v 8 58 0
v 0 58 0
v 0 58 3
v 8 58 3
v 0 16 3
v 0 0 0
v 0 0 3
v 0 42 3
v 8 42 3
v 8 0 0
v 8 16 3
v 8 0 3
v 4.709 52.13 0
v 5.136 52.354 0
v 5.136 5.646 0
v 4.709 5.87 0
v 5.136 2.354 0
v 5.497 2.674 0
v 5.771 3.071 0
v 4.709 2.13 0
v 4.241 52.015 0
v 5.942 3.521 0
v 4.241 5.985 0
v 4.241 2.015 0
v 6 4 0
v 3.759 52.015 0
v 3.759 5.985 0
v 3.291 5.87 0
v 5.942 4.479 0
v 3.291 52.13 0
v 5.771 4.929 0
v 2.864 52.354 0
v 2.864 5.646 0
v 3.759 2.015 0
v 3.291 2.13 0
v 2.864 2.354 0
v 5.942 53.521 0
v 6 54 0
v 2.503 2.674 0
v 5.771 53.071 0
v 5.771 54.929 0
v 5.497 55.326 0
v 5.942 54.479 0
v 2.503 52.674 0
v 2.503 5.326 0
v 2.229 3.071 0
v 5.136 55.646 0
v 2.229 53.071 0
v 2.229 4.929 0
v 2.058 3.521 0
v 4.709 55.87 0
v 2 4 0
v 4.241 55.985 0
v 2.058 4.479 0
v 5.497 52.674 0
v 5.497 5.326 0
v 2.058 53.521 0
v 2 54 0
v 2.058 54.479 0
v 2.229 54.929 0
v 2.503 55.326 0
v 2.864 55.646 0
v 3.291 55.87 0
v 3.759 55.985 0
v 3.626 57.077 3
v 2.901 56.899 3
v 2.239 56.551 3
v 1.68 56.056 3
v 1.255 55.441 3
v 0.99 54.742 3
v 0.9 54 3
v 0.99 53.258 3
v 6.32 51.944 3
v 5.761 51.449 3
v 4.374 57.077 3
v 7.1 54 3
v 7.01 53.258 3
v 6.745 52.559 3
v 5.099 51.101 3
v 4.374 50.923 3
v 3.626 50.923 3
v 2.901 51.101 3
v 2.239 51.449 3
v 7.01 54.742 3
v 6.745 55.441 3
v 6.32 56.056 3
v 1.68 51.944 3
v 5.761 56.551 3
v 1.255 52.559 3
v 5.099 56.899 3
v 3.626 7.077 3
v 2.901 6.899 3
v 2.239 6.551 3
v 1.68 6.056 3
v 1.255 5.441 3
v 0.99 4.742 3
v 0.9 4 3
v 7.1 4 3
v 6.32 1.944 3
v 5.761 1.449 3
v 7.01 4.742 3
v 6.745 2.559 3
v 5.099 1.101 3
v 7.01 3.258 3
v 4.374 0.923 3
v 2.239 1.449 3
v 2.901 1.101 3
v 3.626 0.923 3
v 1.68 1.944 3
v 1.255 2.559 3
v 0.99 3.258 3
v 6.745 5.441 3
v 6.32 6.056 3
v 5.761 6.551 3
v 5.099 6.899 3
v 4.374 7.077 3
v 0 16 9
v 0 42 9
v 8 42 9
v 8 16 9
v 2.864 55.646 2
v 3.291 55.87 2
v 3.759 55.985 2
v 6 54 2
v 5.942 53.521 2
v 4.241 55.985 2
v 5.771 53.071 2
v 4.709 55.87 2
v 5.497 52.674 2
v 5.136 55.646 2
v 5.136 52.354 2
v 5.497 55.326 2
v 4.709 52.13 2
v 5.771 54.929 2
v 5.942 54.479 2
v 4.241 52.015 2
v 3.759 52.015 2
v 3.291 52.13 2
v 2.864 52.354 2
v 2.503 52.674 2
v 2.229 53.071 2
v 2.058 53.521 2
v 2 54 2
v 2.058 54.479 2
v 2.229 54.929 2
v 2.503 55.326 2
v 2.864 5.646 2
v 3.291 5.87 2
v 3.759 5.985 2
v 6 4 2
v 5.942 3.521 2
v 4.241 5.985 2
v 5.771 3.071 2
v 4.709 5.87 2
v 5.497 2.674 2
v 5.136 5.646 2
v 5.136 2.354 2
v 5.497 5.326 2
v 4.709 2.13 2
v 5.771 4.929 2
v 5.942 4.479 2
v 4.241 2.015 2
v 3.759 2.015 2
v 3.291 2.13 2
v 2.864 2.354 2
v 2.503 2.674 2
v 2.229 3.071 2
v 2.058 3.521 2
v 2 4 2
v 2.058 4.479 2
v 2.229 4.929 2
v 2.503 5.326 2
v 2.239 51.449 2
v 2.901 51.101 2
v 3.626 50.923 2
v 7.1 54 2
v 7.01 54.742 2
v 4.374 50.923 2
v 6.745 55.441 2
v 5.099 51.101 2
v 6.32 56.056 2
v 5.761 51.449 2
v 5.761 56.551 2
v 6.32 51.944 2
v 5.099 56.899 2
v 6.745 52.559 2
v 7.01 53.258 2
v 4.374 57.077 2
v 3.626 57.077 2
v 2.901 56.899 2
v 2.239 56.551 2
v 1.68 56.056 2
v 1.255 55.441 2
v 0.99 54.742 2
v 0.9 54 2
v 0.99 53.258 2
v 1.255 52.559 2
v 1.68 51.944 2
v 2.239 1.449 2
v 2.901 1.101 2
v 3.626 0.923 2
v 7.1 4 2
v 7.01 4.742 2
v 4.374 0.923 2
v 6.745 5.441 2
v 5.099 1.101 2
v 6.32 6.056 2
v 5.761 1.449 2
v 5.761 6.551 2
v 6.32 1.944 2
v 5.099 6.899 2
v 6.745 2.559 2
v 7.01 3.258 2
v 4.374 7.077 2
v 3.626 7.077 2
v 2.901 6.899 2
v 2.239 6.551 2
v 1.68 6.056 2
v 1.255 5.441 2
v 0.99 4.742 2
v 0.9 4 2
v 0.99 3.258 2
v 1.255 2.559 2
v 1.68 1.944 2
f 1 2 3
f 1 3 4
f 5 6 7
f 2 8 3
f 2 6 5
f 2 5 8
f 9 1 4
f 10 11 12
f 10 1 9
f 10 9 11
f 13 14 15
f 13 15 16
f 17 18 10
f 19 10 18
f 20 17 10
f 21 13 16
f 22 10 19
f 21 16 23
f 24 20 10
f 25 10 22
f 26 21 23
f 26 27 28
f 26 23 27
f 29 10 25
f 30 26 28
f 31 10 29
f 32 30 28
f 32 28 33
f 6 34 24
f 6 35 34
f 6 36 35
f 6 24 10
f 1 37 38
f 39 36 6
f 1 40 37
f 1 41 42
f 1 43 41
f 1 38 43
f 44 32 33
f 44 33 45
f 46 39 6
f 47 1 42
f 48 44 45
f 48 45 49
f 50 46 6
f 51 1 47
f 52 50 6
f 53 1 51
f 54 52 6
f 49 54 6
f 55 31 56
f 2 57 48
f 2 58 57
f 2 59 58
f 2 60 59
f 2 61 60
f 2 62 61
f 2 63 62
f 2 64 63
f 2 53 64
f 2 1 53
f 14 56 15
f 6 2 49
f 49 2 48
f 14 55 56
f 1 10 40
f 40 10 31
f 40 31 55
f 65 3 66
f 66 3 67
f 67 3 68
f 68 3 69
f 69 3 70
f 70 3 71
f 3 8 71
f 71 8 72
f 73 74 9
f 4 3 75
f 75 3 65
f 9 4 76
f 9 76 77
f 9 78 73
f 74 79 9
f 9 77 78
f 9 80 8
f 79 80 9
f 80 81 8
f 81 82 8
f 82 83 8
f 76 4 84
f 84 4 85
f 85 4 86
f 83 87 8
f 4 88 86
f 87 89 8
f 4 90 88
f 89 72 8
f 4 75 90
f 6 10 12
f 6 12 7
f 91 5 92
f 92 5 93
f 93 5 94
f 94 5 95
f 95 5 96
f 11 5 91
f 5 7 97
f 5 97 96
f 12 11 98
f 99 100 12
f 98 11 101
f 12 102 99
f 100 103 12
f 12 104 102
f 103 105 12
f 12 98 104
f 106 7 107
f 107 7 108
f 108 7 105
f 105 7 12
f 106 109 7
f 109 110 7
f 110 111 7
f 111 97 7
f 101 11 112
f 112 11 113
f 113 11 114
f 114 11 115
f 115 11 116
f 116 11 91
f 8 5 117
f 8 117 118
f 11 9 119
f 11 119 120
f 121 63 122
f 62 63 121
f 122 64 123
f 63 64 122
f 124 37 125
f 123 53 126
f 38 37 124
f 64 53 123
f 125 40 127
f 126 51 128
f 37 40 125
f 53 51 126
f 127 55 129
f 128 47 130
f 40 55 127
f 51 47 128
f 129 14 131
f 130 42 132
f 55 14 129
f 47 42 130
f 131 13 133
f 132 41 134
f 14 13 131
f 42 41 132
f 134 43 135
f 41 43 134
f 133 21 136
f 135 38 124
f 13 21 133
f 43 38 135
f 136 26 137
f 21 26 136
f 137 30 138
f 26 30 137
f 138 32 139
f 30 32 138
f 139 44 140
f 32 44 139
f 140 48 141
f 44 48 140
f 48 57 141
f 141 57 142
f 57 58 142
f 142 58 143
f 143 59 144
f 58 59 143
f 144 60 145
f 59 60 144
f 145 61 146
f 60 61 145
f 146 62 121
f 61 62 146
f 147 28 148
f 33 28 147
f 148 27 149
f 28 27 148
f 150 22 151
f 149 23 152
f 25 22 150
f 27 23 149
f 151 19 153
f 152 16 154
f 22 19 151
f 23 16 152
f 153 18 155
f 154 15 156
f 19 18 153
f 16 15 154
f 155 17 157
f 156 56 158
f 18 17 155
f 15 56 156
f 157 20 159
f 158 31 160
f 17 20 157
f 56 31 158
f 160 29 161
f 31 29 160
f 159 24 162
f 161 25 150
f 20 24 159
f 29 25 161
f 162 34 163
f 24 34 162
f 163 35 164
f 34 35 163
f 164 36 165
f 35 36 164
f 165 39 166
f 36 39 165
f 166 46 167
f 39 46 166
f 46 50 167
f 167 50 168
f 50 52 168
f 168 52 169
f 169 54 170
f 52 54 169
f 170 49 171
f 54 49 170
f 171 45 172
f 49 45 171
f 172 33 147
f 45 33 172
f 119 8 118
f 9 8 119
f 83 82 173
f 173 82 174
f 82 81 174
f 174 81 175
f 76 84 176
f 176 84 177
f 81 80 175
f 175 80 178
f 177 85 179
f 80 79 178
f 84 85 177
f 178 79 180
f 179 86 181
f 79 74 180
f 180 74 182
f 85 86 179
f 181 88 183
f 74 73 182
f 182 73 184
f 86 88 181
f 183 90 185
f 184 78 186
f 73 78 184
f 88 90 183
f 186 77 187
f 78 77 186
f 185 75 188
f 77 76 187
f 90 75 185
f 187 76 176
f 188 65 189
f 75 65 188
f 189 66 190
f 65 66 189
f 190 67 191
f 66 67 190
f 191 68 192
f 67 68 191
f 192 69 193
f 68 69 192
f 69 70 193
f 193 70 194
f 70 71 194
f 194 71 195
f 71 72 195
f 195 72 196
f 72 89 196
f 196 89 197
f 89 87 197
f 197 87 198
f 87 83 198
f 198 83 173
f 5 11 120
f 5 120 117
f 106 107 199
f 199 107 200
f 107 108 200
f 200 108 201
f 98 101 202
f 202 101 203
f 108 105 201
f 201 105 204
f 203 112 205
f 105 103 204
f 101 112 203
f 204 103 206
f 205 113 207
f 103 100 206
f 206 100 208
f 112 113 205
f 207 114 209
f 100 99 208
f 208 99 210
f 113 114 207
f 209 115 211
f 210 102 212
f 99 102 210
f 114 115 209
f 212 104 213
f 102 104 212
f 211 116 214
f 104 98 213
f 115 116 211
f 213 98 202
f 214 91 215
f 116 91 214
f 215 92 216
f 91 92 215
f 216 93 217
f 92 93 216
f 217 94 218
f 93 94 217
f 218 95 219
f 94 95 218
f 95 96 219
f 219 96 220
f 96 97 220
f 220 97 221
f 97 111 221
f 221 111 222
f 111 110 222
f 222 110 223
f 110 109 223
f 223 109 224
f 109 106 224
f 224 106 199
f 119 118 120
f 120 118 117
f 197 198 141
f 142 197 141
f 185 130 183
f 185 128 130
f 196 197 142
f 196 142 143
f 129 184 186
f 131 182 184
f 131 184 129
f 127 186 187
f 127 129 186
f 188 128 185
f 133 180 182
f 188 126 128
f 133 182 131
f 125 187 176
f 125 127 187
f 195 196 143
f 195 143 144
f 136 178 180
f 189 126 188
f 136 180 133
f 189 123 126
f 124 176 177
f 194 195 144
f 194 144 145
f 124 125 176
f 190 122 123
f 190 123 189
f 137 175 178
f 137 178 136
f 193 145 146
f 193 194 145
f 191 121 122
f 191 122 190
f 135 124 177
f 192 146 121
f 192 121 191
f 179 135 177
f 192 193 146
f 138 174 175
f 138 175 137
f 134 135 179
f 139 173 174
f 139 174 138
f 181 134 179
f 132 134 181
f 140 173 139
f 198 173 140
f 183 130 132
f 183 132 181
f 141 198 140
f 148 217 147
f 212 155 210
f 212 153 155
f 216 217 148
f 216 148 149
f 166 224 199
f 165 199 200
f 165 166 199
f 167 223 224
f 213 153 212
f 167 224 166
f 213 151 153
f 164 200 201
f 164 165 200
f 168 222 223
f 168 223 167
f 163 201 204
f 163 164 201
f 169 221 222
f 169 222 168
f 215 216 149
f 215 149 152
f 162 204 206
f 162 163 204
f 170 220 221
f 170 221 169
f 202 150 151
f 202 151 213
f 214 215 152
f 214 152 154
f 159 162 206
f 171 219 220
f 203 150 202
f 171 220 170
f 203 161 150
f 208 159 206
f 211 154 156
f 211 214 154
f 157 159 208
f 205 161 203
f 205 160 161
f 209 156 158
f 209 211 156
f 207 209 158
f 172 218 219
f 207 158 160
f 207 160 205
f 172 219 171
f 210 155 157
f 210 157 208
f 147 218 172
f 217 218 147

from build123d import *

# Parameters (mm, degrees)
SKETCH_W        = 8
SKETCH_H        = 58
PAD_DEPTH       = 3
SKETCH001_W     = 8
SKETCH001_H     = 26
PAD001_DEPTH    = 6
SKETCH002_R     = 2
POCKET_DEPTH    = 5
SKETCH003_R     = 3.1
POCKET001_DEPTH = 1


with BuildPart() as part:
    # Sketch → Pad (new body)
    with BuildSketch(Plane.XY):
        with Locations((4, 29)):
            Rectangle(SKETCH_W, SKETCH_H)
    extrude(amount=PAD_DEPTH)

    # Sketch001 (on Face6 of Pad) → Pad001 (join)
    with BuildSketch(Plane.XY.offset(3)):
        with Locations((4, 29)):
            Rectangle(SKETCH001_W, SKETCH001_H)
    extrude(amount=PAD001_DEPTH)

    # Sketch002 (on Face4 of Pad001) → Pocket (cut)
    with BuildSketch(Plane(origin=(0, 0, 0), x_dir=(1, 0, 0), z_dir=(0, 0, -1))):
        with Locations((4, -4)):
            Circle(SKETCH002_R)
        with Locations((4, -54)):
            Circle(SKETCH002_R)
    extrude(amount=-POCKET_DEPTH, mode=Mode.SUBTRACT)

    # Sketch003 (on Face5 of Pocket) → Pocket001 (cut)
    with BuildSketch(Plane.XY.offset(3)):
        with Locations((4, 4)):
            Circle(SKETCH003_R)
        with Locations((4, 54)):
            Circle(SKETCH003_R)
    extrude(amount=-POCKET001_DEPTH, mode=Mode.SUBTRACT)


solid = part.part
